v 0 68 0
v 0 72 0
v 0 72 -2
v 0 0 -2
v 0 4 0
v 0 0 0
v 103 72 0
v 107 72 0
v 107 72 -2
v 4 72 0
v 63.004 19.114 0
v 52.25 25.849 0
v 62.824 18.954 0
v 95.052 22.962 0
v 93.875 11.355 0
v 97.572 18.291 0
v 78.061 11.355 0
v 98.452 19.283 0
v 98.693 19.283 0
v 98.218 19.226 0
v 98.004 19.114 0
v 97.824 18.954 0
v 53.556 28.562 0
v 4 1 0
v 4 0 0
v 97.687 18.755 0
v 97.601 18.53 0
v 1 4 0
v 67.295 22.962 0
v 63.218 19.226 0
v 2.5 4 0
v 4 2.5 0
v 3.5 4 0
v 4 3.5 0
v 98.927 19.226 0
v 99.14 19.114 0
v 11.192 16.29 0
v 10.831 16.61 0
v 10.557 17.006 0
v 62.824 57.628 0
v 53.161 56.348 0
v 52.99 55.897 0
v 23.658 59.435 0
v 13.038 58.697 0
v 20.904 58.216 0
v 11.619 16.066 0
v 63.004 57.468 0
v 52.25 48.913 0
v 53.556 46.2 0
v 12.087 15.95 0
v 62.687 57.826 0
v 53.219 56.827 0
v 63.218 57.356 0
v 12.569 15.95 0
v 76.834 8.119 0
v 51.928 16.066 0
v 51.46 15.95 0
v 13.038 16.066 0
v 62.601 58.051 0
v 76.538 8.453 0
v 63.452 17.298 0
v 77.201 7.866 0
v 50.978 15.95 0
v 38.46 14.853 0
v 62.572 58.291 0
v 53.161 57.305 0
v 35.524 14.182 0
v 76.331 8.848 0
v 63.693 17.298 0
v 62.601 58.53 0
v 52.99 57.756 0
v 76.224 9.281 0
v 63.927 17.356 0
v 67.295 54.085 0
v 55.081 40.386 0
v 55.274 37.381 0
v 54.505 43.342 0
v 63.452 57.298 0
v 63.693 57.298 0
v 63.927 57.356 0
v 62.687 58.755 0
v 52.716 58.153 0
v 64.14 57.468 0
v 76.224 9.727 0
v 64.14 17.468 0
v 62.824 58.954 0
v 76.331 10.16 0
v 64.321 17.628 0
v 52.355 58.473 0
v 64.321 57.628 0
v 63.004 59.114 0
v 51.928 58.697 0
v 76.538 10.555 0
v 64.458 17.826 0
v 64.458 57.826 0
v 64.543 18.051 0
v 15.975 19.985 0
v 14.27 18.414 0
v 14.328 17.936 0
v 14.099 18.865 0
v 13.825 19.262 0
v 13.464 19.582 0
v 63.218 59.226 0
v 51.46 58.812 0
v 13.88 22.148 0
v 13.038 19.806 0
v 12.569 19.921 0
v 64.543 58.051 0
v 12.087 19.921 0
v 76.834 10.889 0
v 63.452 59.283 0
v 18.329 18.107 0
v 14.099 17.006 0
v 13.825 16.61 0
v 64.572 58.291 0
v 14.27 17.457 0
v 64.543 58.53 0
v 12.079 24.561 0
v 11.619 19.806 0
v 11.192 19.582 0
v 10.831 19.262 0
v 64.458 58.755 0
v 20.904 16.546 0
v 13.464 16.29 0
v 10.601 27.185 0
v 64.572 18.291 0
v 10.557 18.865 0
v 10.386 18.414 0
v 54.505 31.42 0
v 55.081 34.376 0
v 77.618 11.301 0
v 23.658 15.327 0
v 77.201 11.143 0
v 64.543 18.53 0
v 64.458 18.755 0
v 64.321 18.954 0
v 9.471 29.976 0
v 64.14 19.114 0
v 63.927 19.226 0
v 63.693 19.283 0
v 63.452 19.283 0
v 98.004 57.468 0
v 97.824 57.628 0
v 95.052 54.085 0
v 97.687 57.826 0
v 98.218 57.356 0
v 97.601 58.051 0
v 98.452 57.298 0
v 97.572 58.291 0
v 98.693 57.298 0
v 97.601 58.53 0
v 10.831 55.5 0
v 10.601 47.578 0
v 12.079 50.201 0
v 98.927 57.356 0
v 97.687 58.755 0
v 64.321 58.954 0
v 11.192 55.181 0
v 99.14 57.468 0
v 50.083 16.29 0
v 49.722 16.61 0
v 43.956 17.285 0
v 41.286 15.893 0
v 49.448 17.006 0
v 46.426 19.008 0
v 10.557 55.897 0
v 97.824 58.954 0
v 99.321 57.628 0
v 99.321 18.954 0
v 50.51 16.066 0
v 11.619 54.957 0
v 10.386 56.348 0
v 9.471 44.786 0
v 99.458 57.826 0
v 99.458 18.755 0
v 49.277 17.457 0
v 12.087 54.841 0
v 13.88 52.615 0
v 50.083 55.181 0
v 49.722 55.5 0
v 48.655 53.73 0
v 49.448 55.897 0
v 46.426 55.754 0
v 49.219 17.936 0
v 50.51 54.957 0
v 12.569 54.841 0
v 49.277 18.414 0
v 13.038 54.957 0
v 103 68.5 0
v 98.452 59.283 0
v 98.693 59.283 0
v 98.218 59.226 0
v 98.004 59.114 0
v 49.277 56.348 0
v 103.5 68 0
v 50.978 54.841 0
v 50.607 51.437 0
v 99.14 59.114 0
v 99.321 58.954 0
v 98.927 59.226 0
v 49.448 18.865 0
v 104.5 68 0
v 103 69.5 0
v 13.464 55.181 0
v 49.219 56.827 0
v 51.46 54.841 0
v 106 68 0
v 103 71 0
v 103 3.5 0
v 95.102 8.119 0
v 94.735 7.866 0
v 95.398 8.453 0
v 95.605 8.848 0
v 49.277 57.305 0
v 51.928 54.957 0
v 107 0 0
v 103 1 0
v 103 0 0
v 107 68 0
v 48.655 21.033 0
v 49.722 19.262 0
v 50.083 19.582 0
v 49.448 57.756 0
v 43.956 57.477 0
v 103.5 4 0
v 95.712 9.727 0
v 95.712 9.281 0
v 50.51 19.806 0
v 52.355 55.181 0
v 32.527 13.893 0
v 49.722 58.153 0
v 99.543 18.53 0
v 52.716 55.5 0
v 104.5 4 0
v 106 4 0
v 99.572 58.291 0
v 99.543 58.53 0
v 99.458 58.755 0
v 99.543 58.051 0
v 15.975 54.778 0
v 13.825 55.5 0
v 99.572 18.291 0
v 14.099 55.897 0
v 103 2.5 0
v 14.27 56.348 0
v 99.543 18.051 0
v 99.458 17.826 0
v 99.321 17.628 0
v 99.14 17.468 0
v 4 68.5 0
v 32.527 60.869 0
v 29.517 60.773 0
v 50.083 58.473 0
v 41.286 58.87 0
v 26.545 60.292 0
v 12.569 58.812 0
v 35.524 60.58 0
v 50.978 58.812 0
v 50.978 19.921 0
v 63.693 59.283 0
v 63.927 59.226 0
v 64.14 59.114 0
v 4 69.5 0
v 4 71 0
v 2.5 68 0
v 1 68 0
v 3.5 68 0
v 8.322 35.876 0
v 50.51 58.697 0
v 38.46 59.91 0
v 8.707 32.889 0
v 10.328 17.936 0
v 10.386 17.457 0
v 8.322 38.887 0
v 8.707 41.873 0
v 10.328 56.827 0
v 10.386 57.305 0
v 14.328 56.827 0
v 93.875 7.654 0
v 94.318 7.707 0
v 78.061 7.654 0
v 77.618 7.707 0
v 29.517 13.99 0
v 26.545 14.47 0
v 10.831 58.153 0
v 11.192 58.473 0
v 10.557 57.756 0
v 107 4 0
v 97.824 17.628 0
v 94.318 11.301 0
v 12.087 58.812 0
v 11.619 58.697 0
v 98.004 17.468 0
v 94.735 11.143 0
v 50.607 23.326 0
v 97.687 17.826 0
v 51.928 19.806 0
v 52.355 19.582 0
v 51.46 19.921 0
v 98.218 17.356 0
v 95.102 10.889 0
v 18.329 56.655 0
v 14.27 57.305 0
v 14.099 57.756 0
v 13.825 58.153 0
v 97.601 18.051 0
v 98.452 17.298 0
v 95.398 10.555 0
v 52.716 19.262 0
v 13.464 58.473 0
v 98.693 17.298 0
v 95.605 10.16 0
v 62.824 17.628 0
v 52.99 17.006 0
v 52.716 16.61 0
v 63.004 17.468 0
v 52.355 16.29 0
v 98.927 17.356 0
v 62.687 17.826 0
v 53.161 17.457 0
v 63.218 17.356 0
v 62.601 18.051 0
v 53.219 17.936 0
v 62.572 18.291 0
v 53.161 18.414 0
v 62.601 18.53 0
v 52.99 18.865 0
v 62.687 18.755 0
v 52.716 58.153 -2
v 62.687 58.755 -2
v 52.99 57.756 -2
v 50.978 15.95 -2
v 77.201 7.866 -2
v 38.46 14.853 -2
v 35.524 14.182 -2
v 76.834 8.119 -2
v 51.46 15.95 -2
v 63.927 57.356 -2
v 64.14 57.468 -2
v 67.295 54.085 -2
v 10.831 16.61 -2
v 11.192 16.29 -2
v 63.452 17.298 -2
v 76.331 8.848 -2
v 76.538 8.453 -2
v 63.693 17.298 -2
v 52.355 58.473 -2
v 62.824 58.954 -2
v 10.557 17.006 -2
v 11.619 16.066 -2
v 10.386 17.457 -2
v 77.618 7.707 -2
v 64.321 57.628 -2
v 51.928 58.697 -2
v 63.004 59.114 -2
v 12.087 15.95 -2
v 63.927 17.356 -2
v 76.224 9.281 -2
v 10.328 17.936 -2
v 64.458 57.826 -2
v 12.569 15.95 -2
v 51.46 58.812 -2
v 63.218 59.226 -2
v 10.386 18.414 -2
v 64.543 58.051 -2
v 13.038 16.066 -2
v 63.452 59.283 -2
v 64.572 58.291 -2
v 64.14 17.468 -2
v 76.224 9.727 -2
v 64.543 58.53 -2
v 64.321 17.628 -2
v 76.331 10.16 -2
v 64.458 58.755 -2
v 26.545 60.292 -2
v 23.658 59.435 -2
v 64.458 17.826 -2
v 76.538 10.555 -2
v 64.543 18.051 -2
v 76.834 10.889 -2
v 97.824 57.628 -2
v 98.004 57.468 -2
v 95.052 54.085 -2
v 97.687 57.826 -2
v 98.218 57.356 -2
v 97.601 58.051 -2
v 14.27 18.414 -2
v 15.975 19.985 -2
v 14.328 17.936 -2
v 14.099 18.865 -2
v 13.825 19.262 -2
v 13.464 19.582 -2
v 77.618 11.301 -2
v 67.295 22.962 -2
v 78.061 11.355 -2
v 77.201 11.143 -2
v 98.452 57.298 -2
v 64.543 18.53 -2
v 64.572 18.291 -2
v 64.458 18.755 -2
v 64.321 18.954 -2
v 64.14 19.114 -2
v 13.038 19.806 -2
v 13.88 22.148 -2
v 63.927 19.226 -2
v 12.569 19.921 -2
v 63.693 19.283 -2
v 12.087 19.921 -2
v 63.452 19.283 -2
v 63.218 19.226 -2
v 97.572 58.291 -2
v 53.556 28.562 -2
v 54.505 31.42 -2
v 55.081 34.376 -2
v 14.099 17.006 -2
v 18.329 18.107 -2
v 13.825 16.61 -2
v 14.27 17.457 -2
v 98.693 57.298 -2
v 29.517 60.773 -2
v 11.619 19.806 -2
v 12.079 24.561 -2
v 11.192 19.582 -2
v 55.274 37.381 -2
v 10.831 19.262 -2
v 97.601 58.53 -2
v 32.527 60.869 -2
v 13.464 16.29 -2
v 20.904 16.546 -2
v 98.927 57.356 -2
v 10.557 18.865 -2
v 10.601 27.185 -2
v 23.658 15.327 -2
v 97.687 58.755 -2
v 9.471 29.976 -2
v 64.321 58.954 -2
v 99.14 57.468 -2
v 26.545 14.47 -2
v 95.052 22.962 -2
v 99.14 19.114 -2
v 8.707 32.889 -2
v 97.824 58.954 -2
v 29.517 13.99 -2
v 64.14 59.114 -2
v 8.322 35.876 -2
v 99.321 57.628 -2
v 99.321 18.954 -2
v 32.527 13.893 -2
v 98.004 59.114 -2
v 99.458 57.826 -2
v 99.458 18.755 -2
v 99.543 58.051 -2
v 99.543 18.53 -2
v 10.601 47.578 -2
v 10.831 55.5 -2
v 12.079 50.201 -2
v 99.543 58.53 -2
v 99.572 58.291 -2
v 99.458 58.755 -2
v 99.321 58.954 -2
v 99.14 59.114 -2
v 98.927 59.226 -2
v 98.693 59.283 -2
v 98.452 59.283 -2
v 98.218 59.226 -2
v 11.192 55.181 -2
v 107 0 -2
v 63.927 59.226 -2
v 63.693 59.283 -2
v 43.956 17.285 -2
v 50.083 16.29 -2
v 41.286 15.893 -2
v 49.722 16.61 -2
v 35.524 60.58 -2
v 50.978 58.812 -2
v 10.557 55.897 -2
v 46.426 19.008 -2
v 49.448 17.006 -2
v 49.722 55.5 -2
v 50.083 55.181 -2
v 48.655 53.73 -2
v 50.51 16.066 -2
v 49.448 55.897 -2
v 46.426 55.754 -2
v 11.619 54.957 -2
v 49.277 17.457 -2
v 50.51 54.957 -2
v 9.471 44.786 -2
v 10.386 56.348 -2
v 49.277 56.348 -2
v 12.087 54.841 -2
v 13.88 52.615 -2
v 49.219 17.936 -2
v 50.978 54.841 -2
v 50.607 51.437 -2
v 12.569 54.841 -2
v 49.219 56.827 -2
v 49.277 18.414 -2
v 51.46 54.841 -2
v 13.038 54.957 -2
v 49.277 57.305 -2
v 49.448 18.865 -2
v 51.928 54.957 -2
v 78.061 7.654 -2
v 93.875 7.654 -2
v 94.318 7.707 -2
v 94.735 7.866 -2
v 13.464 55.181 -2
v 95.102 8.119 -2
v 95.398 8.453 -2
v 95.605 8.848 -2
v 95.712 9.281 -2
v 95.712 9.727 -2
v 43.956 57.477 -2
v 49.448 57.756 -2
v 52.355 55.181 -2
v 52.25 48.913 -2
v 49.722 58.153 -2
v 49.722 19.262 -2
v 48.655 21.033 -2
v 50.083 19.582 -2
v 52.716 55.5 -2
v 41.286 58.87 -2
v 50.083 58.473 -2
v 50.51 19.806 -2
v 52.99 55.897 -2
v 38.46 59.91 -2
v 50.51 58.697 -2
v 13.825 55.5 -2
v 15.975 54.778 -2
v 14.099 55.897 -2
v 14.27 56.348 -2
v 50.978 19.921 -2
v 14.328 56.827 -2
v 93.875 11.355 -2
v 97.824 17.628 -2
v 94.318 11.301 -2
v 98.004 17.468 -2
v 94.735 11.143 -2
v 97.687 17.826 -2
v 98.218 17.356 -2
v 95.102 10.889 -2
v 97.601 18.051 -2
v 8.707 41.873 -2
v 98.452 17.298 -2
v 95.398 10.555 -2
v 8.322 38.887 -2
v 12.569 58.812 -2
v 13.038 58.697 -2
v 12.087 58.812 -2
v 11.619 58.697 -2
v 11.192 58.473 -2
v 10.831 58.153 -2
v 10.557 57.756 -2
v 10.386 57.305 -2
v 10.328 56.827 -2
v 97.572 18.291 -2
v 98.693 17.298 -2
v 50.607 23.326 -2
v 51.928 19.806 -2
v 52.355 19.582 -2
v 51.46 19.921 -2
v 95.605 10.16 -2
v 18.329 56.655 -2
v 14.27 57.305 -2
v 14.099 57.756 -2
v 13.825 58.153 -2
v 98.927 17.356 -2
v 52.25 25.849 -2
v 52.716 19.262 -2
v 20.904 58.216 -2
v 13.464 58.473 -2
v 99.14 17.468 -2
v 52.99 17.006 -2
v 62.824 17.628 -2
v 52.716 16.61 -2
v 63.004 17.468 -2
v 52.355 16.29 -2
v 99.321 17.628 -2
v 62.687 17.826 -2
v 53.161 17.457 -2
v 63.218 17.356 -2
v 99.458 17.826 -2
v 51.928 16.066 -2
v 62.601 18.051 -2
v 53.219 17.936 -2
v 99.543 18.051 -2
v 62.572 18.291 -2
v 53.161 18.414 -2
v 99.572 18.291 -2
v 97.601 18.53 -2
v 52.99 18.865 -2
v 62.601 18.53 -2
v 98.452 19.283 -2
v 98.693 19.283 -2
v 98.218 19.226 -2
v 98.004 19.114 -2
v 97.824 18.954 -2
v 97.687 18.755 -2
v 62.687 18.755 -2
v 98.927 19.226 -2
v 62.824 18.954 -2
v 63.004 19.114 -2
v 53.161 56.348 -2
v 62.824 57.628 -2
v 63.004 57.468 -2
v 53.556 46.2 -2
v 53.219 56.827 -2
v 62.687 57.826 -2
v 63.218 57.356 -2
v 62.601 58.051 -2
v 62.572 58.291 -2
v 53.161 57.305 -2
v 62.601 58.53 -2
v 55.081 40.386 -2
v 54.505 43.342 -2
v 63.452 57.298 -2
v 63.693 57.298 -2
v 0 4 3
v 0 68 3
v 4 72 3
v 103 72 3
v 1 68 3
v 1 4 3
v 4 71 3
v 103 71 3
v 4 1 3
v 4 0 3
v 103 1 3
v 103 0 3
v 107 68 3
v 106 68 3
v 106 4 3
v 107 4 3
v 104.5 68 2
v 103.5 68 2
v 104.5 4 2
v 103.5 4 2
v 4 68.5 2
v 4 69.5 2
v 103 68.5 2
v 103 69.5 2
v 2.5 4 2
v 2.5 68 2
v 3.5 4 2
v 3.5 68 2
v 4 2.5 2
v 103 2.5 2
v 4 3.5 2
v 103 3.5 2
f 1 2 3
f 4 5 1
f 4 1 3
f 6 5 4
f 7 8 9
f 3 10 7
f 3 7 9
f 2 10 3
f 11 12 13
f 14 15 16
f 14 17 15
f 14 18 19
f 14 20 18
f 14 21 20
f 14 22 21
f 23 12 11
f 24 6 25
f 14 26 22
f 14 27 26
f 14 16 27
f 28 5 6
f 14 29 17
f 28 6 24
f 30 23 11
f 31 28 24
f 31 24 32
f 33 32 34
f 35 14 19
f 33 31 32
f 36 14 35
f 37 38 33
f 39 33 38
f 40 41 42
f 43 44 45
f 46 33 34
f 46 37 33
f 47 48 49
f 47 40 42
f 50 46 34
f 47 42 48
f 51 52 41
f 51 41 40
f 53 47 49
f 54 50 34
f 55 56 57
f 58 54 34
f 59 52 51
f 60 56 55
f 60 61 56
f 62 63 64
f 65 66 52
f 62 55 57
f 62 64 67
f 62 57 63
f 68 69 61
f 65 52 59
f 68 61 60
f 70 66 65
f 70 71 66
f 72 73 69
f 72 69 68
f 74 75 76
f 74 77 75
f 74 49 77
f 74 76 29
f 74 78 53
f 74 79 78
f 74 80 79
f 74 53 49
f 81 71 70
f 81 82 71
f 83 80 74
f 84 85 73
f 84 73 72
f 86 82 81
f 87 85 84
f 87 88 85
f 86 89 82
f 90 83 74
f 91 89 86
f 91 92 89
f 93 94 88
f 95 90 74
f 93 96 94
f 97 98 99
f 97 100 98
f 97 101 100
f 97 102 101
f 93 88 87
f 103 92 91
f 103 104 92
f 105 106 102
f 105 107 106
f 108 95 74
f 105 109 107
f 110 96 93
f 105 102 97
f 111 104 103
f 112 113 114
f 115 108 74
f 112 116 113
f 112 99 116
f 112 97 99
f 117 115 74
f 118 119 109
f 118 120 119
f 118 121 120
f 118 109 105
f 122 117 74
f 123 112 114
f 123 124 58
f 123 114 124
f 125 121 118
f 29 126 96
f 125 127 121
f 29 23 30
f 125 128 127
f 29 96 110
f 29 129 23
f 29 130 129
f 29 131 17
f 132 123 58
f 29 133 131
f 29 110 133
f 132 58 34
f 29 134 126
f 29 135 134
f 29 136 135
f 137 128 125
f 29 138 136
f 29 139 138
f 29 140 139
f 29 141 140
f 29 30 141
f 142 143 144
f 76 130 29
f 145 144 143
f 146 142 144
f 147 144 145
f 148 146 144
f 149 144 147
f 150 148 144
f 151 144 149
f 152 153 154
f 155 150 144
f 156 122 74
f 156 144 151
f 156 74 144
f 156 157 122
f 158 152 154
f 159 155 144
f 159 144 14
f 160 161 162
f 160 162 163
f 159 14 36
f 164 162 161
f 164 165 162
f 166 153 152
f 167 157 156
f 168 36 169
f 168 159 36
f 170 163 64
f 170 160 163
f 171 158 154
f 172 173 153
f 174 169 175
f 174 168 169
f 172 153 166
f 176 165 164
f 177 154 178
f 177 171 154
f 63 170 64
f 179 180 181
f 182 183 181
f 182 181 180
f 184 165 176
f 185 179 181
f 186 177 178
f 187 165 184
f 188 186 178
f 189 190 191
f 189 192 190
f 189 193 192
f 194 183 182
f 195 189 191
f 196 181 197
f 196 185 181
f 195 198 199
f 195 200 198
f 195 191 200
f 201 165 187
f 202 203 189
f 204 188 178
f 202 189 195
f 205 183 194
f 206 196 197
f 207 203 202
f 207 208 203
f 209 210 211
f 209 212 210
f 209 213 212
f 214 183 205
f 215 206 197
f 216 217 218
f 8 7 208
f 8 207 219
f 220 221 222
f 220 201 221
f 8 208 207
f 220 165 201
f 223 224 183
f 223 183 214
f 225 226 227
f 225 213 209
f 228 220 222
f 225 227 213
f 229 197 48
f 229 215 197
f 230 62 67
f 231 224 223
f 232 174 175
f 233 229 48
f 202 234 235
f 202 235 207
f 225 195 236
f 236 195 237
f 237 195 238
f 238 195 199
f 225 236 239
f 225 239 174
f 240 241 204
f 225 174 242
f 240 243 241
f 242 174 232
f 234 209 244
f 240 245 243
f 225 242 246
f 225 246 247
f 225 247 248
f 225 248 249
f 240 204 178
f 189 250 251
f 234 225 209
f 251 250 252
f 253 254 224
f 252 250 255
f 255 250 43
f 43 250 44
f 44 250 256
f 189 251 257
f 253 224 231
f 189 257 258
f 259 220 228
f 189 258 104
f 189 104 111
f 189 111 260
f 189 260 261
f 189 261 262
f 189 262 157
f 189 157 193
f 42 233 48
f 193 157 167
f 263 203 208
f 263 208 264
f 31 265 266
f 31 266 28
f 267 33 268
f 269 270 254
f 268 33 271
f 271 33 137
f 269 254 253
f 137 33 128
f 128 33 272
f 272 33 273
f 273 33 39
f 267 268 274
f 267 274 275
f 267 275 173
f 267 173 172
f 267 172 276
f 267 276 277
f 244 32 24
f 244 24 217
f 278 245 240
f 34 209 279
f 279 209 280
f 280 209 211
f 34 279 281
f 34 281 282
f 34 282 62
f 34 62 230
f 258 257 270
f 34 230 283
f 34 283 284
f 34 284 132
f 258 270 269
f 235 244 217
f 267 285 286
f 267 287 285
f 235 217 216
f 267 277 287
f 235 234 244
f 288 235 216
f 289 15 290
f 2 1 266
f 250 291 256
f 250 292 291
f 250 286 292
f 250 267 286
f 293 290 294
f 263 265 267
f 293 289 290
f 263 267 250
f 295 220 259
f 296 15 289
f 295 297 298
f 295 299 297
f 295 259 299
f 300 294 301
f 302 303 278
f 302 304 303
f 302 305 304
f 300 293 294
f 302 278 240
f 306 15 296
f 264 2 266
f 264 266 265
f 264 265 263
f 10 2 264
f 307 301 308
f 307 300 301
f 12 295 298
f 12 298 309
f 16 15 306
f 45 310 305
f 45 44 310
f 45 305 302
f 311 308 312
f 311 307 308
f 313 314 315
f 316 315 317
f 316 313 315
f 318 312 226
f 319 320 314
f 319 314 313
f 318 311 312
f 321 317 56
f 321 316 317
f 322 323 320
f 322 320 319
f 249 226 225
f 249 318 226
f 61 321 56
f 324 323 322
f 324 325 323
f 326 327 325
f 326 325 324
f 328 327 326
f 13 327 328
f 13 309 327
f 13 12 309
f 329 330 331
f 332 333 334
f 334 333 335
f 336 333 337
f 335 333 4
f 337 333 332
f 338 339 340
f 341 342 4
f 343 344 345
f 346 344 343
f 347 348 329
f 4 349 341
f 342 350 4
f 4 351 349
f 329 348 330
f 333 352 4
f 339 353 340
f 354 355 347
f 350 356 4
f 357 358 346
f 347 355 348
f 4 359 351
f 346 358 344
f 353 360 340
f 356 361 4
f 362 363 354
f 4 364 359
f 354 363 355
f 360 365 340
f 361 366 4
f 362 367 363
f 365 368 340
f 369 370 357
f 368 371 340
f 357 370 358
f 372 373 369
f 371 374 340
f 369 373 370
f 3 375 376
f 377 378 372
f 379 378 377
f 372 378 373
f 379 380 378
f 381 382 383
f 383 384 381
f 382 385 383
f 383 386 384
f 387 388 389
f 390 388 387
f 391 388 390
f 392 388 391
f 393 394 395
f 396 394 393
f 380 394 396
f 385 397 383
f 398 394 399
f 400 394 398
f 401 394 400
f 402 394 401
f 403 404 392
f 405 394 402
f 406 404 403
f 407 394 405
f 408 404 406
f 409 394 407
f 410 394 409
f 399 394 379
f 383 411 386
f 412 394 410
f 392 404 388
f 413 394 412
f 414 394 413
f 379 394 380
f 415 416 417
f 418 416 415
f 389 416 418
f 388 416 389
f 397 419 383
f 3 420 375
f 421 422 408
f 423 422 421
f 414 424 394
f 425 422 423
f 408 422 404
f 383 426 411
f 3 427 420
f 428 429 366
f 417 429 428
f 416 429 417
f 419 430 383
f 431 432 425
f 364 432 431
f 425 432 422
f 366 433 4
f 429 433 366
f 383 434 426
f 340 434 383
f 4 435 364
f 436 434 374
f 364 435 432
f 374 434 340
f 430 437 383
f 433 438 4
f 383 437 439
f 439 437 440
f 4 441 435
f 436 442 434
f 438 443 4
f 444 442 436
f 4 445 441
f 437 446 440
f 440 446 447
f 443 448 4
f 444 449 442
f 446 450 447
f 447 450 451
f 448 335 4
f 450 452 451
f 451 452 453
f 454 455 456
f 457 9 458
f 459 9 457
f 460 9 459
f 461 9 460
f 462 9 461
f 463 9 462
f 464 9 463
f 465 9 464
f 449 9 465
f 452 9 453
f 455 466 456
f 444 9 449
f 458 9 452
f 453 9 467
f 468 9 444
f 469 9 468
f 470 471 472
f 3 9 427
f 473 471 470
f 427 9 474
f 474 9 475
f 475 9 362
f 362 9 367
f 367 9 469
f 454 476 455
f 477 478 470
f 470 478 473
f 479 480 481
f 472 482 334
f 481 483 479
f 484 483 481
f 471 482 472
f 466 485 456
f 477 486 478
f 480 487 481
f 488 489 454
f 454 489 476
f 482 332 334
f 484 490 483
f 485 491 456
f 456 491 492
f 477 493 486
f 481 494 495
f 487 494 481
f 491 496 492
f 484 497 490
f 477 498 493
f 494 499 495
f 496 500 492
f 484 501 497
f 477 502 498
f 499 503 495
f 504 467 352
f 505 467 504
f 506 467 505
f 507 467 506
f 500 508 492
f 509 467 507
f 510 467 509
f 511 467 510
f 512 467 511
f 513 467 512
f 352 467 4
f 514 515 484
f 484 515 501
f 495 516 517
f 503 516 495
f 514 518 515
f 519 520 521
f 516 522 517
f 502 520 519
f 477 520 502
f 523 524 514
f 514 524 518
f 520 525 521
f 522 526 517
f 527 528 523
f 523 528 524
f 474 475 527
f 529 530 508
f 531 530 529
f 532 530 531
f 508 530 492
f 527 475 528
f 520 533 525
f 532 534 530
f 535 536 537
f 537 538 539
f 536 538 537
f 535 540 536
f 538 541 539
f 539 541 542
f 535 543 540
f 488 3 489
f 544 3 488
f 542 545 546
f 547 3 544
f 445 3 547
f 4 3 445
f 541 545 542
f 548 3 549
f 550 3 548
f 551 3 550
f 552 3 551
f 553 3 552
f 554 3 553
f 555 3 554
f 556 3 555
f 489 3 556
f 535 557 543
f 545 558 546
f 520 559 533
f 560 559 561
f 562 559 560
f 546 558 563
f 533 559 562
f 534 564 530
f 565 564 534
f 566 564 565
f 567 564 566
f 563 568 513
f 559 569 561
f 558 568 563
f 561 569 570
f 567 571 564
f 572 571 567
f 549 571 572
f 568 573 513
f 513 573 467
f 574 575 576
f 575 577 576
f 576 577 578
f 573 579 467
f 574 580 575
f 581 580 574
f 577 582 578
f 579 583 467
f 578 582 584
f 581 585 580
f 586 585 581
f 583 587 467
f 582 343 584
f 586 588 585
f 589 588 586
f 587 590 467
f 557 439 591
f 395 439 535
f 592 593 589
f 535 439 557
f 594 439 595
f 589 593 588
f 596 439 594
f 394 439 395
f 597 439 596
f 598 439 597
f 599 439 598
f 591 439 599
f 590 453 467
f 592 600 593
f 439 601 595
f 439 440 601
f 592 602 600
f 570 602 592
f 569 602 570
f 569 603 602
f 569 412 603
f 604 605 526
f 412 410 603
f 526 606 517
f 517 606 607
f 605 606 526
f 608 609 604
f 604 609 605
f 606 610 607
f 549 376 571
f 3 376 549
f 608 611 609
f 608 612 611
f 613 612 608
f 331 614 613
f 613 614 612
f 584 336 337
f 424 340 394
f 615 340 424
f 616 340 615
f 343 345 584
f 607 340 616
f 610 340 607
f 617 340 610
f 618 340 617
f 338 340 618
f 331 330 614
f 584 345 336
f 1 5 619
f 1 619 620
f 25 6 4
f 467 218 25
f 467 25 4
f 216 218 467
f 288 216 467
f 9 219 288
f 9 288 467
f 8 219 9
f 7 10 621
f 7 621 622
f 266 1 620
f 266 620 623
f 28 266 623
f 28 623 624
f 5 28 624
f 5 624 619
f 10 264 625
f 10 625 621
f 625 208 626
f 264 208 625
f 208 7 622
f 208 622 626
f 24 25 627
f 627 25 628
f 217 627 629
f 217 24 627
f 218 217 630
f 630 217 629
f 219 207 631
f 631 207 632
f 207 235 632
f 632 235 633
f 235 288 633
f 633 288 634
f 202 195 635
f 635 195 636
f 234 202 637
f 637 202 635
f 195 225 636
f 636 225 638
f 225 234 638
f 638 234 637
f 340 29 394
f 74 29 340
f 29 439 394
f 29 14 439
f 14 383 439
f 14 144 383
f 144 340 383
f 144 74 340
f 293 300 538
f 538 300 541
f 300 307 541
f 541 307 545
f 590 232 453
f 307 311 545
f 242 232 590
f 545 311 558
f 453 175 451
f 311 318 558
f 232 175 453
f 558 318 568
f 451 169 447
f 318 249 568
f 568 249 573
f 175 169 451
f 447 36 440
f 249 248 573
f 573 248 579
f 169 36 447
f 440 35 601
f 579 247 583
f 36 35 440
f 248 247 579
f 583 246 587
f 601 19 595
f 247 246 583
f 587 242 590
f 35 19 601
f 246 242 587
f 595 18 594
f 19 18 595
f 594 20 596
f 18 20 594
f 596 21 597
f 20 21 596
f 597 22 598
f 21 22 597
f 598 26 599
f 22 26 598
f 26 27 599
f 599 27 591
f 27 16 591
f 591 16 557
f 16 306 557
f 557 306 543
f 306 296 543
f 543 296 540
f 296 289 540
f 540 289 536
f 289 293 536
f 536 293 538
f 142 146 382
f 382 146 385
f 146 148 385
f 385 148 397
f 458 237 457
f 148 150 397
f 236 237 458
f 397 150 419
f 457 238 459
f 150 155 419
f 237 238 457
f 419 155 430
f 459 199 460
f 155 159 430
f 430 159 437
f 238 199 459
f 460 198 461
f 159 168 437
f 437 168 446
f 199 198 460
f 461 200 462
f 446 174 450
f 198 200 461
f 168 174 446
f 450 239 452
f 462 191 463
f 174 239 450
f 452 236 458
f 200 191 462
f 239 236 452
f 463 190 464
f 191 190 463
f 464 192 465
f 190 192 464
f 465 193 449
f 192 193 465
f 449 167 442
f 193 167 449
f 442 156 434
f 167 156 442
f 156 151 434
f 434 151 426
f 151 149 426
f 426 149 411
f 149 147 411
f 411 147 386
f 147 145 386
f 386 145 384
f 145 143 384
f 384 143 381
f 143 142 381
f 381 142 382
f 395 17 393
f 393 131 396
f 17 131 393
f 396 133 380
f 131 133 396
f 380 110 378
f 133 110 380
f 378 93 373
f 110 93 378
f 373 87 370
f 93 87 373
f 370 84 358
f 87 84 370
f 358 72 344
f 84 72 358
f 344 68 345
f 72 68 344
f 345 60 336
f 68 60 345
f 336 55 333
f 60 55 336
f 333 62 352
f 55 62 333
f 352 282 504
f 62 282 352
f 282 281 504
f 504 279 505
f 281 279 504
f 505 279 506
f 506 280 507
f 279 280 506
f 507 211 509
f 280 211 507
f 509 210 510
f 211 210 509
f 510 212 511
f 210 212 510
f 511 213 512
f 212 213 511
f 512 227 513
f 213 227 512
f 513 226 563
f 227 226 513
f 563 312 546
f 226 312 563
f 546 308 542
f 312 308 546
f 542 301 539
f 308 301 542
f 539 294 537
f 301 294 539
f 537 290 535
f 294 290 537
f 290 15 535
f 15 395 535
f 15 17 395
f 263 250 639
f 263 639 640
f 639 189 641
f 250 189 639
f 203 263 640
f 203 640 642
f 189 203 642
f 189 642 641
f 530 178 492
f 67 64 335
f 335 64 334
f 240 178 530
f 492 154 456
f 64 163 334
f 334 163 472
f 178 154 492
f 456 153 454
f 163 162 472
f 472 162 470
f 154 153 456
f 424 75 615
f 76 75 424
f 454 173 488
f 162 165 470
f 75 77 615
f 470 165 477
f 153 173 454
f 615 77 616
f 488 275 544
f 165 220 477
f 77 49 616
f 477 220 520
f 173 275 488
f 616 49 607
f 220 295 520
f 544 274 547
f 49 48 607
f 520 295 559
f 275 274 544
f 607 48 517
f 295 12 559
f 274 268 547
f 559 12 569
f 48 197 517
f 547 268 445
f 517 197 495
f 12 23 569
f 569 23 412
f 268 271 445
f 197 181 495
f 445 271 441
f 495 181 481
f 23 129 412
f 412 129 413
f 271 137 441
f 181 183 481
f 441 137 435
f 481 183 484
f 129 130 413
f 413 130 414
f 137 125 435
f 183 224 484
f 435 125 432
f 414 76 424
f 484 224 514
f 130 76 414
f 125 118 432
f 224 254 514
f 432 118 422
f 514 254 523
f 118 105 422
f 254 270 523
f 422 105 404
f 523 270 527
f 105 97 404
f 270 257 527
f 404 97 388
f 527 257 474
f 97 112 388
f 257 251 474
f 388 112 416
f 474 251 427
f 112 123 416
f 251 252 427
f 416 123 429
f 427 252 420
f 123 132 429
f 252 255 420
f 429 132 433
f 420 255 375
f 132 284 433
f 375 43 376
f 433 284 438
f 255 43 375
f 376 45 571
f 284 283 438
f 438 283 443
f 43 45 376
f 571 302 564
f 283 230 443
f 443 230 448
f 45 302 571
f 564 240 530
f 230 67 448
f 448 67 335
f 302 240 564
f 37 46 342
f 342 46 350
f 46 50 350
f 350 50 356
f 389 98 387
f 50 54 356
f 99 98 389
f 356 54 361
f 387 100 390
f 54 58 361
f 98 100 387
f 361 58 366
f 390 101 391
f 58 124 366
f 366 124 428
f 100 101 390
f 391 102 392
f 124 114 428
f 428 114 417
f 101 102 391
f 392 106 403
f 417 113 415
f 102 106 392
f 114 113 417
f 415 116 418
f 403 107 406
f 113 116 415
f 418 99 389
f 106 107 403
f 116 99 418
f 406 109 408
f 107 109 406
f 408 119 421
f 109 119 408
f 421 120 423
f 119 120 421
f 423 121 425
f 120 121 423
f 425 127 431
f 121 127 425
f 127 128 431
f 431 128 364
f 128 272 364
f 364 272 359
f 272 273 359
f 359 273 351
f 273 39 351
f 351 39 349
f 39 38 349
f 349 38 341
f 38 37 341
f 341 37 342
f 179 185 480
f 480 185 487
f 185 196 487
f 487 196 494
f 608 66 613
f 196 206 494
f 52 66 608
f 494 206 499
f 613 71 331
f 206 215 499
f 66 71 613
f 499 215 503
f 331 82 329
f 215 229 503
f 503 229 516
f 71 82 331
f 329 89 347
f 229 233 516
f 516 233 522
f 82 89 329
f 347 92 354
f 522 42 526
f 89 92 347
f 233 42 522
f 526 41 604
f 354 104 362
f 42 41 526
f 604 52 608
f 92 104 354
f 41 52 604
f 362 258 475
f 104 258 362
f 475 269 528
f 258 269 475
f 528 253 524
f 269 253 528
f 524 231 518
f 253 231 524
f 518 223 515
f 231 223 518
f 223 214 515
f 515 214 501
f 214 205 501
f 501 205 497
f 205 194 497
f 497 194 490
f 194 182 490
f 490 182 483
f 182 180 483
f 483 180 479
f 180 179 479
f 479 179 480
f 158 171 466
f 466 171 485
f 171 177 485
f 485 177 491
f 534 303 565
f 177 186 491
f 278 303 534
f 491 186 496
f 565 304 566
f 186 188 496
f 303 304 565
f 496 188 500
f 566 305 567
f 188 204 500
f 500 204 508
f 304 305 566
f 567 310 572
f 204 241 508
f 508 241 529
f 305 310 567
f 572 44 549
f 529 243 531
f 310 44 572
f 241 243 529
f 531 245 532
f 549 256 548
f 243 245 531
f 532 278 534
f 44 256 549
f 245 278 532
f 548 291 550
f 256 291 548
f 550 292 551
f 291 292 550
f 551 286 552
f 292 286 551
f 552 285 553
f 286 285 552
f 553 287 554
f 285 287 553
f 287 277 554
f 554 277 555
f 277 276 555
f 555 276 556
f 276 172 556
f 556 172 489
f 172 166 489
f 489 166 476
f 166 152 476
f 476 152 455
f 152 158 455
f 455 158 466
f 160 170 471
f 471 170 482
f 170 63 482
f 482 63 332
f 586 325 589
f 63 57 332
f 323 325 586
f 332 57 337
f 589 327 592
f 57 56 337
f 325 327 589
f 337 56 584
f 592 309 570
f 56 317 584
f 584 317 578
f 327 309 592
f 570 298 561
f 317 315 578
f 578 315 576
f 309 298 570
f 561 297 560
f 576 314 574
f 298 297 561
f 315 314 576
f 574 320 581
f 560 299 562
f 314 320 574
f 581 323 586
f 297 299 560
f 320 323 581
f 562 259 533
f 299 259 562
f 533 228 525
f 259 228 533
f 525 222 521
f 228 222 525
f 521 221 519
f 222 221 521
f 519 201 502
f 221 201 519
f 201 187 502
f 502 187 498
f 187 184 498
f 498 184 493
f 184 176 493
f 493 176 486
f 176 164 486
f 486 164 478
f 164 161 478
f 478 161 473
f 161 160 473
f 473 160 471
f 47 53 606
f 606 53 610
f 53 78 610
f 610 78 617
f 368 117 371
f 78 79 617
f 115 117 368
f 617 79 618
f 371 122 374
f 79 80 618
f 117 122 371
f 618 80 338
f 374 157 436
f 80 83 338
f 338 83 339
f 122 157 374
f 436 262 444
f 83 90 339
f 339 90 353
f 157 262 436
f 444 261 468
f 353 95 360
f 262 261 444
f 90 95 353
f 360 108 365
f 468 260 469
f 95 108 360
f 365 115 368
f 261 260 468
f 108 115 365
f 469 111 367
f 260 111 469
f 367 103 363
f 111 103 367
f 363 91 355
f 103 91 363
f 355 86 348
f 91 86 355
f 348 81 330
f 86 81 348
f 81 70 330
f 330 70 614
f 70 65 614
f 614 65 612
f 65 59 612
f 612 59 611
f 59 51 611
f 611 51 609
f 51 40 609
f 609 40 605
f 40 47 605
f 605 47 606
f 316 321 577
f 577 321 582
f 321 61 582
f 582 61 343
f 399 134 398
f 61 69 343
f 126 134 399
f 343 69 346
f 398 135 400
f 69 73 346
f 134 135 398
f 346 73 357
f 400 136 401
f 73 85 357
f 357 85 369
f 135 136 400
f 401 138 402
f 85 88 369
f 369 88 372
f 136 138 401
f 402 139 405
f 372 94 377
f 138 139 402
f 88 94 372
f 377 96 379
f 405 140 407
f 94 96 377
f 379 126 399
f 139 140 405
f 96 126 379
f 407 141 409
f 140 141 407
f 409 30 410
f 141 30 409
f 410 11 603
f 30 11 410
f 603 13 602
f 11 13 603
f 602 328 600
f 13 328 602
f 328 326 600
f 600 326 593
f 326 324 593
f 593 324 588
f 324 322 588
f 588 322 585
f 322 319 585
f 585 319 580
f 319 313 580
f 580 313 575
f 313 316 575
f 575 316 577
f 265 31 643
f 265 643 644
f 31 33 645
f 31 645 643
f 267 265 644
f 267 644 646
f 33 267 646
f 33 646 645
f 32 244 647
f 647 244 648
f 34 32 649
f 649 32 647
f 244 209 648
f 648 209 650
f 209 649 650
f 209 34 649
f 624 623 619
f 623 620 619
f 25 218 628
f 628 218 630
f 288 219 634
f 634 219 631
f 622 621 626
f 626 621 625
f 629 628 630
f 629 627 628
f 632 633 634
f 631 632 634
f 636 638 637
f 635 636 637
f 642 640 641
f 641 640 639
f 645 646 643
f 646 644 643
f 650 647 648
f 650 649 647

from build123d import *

# Parameters (mm, degrees)
SKETCH_W      = 107
SKETCH_H      = 72
PAD_DEPTH     = 2
SKETCH001_W   = 1
SKETCH001_H   = 64
PAD001_DEPTH  = 3
SKETCH002_W   = 1
SKETCH002_H   = 64
PAD002_DEPTH  = 2
SKETCH003_W   = 1
SKETCH003_H   = 64
PAD003_DEPTH  = 2
SKETCH004_W   = 1
SKETCH004_H   = 64
PAD004_DEPTH  = 3
SKETCH005_W   = 99
SKETCH005_H   = 1
PAD005_DEPTH  = 3
SKETCH006_W   = 99
SKETCH006_H   = 1
PAD006_DEPTH  = 2
SKETCH007_W   = 99
SKETCH007_H   = 1
PAD007_DEPTH  = 2
SKETCH008_W   = 99
SKETCH008_H   = 1
PAD008_DEPTH  = 3
SKETCH009_R   = 23.5
SKETCH009_R_2 = 2
SKETCH009_R_3 = 1
SKETCH009_W   = 27.757637
SKETCH009_H   = 31.122207
POCKET_DEPTH  = 2.001


with BuildPart() as part:
    # Sketch → Pad (new body)
    with BuildSketch(Plane.XY):
        with Locations((53.5, 36)):
            Rectangle(SKETCH_W, SKETCH_H)
    extrude(amount=-PAD_DEPTH)

    # Sketch001 → Pad001 (join)
    with BuildSketch(Plane.XY):
        with Locations((0.5, 36)):
            Rectangle(SKETCH001_W, SKETCH001_H)
    extrude(amount=PAD001_DEPTH)

    # Sketch002 → Pad002 (join)
    with BuildSketch(Plane.XY):
        with Locations((3, 36)):
            Rectangle(SKETCH002_W, SKETCH002_H)
    extrude(amount=PAD002_DEPTH)

    # Sketch003 → Pad003 (join)
    with BuildSketch(Plane.XY):
        with Locations((104, 36)):
            Rectangle(SKETCH003_W, SKETCH003_H)
    extrude(amount=PAD003_DEPTH)

    # Sketch004 → Pad004 (join)
    with BuildSketch(Plane.XY):
        with Locations((106.5, 36)):
            Rectangle(SKETCH004_W, SKETCH004_H)
    extrude(amount=PAD004_DEPTH)

    # Sketch005 → Pad005 (join)
    with BuildSketch(Plane.XY):
        with Locations((53.5, 71.5)):
            Rectangle(SKETCH005_W, SKETCH005_H)
    extrude(amount=PAD005_DEPTH)

    # Sketch006 → Pad006 (join)
    with BuildSketch(Plane.XY):
        with Locations((53.5, 69)):
            Rectangle(SKETCH006_W, SKETCH006_H)
    extrude(amount=PAD006_DEPTH)

    # Sketch007 → Pad007 (join)
    with BuildSketch(Plane.XY):
        with Locations((53.5, 3)):
            Rectangle(SKETCH007_W, SKETCH007_H)
    extrude(amount=PAD007_DEPTH)

    # Sketch008 → Pad008 (join)
    with BuildSketch(Plane.XY):
        with Locations((53.5, 0.5)):
            Rectangle(SKETCH008_W, SKETCH008_H)
    extrude(amount=PAD008_DEPTH)

    # Sketch009 → Pocket (cut, through all)
    with BuildSketch(Plane.XY):
        with Locations((31.773752, 37.38124)):
            Circle(SKETCH009_R)
        with Locations((12.328316, 56.826676)):
            Circle(SKETCH009_R_2)
        with Locations((51.219189, 56.826676)):
            Circle(SKETCH009_R_2)
        with Locations((51.219189, 17.935803)):
            Circle(SKETCH009_R_2)
        with Locations((12.328316, 17.935803)):
            Circle(SKETCH009_R_2)
        with Locations((63.572306, 58.290639)):
            Circle(SKETCH009_R_3)
        with Locations((98.572306, 58.290639)):
            Circle(SKETCH009_R_3)
        with Locations((63.572306, 18.290639)):
            Circle(SKETCH009_R_3)
        with Locations((98.572306, 18.290639)):
            Circle(SKETCH009_R_3)
        with BuildLine():
            ThreePointArc((78.061318, 11.354568), (76.210807, 9.504057), (78.061318, 7.653547))
            Line((78.061318, 7.653547), (93.874763, 7.653547))
            ThreePointArc((93.874763, 7.653547), (95.725274, 9.504057), (93.874763, 11.354568))
            Line((78.061318, 11.354568), (93.874763, 11.354568))
        make_face()
        with Locations((81.173542, 38.523415)):
            Rectangle(SKETCH009_W, SKETCH009_H)
    extrude(amount=-POCKET_DEPTH, mode=Mode.SUBTRACT)


solid = part.part
